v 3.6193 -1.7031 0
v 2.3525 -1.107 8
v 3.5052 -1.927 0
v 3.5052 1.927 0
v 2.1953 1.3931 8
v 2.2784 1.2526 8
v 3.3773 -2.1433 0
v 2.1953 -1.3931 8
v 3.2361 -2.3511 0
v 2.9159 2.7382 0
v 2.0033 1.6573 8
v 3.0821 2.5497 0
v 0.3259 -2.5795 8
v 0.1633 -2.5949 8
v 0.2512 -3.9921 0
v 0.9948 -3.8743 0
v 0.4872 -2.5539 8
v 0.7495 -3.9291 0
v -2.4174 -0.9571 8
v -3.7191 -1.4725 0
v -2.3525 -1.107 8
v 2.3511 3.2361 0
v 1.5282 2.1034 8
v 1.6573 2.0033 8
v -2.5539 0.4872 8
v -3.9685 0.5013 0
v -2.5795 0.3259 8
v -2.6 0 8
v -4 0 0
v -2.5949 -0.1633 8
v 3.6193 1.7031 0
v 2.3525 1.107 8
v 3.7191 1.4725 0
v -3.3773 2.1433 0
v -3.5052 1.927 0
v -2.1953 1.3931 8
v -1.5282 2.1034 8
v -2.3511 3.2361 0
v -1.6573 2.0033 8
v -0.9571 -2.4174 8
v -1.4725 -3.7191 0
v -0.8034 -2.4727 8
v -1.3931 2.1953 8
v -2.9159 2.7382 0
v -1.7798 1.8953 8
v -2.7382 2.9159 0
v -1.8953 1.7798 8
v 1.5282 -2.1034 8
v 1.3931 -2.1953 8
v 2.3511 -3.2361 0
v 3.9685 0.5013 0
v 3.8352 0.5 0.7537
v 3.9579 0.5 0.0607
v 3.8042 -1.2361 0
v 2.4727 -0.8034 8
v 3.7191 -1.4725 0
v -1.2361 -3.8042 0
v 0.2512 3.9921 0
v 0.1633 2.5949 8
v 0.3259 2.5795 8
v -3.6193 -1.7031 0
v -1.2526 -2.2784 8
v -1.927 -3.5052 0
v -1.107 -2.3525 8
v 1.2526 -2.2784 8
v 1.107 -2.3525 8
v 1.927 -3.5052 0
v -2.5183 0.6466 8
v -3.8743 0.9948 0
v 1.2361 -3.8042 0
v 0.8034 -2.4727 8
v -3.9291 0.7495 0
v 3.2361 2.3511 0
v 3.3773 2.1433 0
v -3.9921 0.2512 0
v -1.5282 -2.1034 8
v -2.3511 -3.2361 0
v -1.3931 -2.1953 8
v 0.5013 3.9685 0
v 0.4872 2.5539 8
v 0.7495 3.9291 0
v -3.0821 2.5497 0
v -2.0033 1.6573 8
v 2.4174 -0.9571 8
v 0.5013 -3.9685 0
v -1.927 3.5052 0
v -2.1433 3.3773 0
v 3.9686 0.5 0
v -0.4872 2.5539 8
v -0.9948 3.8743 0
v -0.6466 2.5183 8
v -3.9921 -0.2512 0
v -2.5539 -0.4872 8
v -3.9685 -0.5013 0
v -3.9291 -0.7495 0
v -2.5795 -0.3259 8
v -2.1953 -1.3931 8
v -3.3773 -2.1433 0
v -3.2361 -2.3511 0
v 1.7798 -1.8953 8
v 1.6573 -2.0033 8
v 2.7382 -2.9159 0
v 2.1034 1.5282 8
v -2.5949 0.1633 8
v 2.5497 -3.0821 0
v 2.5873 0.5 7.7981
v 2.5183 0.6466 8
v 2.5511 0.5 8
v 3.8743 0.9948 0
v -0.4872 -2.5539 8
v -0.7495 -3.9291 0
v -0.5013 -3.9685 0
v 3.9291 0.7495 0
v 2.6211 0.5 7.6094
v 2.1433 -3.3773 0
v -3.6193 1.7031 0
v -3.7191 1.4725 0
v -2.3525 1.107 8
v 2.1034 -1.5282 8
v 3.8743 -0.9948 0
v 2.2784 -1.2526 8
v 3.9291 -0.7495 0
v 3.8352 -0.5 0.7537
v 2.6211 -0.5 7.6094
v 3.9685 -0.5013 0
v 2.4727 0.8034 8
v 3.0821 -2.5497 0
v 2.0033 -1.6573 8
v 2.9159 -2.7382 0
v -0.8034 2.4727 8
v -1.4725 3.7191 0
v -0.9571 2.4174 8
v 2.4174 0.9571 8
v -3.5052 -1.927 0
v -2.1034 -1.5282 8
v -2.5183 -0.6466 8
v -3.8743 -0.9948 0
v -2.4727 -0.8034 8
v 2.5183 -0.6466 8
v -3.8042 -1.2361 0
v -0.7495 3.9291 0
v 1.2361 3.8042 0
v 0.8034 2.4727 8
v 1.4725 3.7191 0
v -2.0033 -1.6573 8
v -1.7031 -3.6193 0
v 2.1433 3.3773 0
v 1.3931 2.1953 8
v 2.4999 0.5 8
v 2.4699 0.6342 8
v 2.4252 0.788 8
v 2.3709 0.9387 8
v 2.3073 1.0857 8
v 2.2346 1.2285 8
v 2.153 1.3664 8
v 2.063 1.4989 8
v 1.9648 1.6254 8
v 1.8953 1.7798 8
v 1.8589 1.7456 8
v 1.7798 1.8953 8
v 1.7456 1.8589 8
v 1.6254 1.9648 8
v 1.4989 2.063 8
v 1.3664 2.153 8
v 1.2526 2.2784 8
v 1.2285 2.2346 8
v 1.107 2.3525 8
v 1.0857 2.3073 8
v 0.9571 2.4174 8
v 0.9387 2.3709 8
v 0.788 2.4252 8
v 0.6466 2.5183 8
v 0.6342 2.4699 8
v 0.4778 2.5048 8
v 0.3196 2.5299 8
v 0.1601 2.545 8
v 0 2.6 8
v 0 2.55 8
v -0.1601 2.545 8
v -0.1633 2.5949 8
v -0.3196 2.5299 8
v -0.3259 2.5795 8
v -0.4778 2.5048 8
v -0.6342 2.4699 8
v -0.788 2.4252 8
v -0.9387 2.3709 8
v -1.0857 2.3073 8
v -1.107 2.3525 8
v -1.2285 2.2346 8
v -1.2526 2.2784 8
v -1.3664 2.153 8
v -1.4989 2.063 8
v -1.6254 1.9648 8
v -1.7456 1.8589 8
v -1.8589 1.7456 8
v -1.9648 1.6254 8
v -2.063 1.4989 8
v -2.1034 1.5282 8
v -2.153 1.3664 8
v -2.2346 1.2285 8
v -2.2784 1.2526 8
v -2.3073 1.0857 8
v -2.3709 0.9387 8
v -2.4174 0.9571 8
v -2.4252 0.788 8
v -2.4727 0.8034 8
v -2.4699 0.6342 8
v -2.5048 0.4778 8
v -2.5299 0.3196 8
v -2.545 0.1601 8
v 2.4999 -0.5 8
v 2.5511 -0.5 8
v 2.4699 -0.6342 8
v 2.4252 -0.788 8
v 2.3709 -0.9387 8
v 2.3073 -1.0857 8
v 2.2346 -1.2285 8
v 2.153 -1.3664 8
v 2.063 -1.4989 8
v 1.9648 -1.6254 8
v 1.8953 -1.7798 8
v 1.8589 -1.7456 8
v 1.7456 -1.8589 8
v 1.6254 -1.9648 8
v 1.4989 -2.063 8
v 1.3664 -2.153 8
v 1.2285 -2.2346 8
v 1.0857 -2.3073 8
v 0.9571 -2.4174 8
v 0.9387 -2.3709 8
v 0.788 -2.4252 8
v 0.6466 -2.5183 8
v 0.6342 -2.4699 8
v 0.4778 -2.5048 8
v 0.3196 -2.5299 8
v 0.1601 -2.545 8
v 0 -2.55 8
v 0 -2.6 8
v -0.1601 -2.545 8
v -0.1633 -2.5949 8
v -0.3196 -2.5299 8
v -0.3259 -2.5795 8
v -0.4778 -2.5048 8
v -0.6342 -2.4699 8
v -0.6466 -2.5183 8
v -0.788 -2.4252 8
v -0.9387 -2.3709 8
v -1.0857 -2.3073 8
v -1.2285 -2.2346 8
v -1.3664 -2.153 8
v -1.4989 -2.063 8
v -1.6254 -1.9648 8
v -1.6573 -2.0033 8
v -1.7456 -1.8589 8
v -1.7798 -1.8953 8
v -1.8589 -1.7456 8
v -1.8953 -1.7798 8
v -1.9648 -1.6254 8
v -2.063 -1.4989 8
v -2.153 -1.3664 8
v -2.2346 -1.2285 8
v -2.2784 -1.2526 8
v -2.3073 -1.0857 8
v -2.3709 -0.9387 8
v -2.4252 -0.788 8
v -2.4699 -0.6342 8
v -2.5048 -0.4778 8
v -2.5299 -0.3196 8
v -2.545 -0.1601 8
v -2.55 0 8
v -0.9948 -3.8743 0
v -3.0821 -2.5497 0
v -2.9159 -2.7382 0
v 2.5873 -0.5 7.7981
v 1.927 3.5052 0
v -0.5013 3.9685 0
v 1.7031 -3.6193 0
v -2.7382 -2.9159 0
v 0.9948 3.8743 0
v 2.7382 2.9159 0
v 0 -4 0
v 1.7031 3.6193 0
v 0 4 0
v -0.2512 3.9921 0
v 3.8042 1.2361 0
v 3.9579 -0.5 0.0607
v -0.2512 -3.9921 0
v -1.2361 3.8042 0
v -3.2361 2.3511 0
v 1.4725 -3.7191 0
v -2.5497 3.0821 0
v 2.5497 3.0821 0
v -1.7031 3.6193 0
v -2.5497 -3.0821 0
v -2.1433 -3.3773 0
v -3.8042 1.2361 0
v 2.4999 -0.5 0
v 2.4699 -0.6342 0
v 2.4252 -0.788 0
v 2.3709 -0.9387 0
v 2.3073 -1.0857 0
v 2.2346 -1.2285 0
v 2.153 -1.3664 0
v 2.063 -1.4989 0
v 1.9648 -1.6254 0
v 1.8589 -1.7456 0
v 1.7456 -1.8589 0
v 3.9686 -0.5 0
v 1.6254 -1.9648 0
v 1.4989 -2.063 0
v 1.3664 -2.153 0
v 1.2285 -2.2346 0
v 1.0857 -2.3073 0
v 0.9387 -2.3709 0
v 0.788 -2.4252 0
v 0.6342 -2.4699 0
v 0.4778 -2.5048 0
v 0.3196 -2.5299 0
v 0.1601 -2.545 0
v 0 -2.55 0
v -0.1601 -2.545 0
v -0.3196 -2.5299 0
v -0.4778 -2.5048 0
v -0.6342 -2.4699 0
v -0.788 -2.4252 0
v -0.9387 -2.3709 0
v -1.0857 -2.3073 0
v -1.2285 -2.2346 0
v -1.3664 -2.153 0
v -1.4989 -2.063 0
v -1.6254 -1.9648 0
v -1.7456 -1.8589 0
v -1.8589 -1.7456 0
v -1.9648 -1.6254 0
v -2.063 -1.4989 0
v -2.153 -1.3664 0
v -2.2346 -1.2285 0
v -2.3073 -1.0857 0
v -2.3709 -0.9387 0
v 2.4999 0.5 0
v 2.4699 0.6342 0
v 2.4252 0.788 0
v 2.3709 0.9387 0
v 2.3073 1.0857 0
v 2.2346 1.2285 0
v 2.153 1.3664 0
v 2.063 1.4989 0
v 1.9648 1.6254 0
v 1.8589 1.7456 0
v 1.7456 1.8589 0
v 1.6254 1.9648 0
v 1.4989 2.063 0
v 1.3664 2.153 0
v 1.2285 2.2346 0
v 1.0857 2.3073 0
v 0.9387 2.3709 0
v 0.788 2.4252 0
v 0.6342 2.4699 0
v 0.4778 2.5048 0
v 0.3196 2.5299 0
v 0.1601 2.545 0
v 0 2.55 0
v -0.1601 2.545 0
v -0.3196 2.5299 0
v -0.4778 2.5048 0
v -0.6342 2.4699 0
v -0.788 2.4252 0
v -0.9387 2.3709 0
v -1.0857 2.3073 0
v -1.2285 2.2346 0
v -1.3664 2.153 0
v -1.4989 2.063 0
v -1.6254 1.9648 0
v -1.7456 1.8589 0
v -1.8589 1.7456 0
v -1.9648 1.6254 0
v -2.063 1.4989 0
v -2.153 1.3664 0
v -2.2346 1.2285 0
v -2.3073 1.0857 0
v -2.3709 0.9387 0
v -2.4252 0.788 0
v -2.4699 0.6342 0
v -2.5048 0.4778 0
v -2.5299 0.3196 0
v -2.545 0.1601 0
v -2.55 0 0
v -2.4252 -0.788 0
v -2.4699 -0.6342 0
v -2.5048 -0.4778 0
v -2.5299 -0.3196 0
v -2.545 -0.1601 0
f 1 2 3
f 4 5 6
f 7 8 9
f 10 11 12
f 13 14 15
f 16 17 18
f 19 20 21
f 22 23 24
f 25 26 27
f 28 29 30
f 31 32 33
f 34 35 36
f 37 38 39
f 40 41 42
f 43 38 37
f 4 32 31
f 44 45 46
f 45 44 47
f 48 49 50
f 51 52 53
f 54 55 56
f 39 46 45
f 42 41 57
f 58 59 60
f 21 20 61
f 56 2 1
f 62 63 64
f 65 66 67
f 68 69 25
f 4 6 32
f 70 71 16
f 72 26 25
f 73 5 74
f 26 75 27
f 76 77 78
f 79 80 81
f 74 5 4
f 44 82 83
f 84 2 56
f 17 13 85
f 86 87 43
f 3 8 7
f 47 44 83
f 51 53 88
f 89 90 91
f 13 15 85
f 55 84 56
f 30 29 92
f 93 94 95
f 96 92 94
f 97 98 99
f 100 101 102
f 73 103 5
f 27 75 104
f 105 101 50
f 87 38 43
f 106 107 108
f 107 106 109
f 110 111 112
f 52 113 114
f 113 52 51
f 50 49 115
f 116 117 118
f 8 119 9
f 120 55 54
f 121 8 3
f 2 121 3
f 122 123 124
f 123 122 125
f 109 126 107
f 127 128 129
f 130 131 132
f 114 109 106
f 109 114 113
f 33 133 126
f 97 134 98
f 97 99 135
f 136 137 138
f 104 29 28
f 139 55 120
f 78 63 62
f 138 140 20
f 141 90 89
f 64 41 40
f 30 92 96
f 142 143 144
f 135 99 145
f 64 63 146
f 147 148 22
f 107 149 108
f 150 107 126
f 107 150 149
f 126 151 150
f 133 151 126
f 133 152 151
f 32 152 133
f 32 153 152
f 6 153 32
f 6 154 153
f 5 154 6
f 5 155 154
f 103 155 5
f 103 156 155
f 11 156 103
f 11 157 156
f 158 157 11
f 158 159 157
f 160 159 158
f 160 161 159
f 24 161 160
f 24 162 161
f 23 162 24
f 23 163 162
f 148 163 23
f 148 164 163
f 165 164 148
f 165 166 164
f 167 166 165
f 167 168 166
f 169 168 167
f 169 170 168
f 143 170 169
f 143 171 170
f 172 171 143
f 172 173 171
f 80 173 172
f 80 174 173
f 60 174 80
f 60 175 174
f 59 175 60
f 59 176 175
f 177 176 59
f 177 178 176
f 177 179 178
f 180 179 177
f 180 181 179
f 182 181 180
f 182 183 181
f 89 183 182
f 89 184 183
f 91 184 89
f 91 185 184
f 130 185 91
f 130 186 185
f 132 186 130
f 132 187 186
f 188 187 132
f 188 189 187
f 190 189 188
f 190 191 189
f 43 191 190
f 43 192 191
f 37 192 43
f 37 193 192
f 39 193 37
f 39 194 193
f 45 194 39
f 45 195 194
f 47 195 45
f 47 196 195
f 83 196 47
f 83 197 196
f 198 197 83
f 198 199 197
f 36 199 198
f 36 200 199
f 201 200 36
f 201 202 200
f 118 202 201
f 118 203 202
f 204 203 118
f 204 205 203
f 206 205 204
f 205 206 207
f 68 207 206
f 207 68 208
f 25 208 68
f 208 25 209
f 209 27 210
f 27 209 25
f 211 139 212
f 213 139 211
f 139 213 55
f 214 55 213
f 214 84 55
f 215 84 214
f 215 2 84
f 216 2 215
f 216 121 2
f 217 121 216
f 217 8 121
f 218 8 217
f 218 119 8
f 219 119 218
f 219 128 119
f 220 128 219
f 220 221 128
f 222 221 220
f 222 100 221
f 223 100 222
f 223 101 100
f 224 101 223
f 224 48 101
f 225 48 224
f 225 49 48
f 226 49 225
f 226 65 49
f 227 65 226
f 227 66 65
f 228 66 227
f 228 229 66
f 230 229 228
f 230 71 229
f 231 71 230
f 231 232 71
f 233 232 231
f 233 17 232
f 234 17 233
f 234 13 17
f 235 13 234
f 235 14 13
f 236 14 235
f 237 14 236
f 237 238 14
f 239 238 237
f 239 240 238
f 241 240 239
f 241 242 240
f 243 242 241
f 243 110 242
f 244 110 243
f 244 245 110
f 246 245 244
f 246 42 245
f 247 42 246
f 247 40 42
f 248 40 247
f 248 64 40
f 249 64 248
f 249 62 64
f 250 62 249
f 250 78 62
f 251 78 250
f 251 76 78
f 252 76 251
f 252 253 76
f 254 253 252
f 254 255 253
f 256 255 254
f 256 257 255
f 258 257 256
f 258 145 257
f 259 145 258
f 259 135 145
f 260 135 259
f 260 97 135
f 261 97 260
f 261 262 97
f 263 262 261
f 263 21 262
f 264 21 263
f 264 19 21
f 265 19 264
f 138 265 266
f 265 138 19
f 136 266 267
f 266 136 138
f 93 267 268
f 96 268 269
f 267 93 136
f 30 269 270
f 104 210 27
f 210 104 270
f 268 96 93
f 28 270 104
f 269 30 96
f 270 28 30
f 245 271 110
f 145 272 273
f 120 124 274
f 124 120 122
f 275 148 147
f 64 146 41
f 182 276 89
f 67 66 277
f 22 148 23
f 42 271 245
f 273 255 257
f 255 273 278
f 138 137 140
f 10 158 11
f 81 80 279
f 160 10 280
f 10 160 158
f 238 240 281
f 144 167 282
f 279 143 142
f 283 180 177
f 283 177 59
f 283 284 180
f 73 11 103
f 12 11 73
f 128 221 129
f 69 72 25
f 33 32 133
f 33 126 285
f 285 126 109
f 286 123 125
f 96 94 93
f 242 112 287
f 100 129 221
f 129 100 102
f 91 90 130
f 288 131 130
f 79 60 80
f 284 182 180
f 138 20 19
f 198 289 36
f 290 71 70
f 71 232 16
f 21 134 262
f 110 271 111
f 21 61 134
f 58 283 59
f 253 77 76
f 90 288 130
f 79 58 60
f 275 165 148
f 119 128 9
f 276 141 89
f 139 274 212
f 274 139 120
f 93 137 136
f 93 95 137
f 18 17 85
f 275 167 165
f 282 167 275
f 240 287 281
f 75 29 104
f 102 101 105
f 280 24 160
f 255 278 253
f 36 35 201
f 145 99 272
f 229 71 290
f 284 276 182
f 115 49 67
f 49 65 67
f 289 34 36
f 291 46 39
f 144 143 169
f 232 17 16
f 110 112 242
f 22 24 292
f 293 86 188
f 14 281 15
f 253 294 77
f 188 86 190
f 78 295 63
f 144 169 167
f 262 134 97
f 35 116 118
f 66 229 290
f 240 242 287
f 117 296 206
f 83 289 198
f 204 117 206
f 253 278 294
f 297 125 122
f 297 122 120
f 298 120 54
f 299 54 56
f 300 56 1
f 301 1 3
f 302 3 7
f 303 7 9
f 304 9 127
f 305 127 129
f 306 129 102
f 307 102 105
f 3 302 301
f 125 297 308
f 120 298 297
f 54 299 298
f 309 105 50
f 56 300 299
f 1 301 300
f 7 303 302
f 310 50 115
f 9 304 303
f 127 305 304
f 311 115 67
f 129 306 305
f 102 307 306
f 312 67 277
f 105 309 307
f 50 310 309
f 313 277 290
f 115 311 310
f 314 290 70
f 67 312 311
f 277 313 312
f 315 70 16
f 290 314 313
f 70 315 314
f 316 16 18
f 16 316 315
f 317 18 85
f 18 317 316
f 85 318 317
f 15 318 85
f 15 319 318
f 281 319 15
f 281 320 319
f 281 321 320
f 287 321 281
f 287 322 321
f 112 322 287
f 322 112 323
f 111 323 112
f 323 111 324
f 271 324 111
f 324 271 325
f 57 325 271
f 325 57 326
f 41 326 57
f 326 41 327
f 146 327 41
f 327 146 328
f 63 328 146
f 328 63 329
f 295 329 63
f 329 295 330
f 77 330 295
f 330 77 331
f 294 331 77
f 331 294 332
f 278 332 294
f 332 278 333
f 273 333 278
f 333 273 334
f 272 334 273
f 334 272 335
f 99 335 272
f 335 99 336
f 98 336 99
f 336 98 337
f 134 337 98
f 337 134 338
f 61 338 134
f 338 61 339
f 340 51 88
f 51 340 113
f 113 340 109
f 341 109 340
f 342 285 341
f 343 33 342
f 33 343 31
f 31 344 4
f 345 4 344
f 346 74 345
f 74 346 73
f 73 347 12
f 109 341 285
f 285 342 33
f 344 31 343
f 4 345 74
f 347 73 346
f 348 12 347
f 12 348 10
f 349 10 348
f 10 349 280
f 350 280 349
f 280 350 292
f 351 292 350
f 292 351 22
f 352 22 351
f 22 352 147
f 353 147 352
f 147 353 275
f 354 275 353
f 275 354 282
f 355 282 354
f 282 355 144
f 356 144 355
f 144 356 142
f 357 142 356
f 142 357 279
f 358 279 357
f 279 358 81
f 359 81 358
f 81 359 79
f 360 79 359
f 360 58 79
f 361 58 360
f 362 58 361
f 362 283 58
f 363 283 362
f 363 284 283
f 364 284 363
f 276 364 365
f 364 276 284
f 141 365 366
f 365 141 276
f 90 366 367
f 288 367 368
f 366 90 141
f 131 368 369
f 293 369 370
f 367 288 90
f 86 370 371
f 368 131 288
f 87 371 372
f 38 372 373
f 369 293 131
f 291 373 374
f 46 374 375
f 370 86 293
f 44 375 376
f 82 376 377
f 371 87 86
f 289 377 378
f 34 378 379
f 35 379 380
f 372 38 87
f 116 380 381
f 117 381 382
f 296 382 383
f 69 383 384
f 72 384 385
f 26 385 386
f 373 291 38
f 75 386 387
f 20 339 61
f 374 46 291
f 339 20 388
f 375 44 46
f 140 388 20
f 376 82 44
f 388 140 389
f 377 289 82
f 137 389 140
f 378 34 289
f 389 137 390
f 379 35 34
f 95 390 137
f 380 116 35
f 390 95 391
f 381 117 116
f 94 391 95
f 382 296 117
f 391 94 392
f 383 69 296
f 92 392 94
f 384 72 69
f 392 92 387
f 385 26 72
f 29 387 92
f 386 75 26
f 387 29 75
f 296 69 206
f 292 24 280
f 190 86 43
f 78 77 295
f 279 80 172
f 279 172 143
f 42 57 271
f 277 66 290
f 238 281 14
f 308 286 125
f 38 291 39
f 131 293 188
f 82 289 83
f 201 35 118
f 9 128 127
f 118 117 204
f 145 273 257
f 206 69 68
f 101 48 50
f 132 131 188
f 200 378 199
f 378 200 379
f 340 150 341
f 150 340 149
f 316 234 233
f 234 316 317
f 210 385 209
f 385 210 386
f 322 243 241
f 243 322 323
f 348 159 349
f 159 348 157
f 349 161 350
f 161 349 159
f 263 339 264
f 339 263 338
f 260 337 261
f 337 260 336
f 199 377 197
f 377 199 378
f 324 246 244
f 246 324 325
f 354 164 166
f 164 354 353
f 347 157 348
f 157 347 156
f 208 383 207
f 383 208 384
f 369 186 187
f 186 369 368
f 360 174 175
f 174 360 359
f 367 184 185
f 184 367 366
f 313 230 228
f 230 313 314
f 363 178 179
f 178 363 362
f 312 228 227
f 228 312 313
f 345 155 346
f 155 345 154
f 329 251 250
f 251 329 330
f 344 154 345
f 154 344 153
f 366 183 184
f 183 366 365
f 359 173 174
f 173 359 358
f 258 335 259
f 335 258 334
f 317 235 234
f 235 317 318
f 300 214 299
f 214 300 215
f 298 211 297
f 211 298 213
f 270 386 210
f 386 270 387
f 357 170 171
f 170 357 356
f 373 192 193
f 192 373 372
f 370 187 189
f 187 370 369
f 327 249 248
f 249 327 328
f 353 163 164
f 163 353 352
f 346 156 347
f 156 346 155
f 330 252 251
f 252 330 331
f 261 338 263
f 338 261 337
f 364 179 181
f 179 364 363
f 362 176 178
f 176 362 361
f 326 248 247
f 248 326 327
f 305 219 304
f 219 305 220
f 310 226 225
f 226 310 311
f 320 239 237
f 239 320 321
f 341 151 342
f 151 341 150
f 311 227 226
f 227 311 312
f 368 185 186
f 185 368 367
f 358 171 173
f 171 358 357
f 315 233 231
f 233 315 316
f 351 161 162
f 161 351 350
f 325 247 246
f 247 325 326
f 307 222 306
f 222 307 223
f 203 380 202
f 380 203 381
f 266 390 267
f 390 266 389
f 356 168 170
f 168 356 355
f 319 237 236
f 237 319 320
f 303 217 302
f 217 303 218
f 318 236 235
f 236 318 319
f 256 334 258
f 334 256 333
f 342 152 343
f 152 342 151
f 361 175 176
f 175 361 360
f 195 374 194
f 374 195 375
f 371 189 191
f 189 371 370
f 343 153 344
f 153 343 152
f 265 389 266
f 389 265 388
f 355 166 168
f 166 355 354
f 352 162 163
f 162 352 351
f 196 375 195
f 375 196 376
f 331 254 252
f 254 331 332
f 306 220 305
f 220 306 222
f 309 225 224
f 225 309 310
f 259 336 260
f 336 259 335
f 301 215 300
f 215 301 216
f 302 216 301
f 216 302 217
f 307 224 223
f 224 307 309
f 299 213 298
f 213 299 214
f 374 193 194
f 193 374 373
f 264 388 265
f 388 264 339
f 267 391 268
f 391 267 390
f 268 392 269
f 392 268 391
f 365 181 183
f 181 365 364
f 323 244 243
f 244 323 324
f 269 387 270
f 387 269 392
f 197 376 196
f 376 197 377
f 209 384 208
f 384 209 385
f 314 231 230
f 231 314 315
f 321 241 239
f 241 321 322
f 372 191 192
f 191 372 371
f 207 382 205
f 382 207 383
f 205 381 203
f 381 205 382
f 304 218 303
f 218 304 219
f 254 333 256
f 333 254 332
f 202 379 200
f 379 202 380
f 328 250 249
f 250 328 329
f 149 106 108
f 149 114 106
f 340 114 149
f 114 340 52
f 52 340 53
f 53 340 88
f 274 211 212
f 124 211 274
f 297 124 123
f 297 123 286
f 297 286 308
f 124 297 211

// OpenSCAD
fn=100;

difference() {
    cylinder(d1=8, d2=5.2,h=8, $fn=fn);
    translate([0,0,-2]) cylinder(d=5.1, h=105, $fn=fn);
    translate([2.5,0,0]) cube([3,1,20], center=true);
}
